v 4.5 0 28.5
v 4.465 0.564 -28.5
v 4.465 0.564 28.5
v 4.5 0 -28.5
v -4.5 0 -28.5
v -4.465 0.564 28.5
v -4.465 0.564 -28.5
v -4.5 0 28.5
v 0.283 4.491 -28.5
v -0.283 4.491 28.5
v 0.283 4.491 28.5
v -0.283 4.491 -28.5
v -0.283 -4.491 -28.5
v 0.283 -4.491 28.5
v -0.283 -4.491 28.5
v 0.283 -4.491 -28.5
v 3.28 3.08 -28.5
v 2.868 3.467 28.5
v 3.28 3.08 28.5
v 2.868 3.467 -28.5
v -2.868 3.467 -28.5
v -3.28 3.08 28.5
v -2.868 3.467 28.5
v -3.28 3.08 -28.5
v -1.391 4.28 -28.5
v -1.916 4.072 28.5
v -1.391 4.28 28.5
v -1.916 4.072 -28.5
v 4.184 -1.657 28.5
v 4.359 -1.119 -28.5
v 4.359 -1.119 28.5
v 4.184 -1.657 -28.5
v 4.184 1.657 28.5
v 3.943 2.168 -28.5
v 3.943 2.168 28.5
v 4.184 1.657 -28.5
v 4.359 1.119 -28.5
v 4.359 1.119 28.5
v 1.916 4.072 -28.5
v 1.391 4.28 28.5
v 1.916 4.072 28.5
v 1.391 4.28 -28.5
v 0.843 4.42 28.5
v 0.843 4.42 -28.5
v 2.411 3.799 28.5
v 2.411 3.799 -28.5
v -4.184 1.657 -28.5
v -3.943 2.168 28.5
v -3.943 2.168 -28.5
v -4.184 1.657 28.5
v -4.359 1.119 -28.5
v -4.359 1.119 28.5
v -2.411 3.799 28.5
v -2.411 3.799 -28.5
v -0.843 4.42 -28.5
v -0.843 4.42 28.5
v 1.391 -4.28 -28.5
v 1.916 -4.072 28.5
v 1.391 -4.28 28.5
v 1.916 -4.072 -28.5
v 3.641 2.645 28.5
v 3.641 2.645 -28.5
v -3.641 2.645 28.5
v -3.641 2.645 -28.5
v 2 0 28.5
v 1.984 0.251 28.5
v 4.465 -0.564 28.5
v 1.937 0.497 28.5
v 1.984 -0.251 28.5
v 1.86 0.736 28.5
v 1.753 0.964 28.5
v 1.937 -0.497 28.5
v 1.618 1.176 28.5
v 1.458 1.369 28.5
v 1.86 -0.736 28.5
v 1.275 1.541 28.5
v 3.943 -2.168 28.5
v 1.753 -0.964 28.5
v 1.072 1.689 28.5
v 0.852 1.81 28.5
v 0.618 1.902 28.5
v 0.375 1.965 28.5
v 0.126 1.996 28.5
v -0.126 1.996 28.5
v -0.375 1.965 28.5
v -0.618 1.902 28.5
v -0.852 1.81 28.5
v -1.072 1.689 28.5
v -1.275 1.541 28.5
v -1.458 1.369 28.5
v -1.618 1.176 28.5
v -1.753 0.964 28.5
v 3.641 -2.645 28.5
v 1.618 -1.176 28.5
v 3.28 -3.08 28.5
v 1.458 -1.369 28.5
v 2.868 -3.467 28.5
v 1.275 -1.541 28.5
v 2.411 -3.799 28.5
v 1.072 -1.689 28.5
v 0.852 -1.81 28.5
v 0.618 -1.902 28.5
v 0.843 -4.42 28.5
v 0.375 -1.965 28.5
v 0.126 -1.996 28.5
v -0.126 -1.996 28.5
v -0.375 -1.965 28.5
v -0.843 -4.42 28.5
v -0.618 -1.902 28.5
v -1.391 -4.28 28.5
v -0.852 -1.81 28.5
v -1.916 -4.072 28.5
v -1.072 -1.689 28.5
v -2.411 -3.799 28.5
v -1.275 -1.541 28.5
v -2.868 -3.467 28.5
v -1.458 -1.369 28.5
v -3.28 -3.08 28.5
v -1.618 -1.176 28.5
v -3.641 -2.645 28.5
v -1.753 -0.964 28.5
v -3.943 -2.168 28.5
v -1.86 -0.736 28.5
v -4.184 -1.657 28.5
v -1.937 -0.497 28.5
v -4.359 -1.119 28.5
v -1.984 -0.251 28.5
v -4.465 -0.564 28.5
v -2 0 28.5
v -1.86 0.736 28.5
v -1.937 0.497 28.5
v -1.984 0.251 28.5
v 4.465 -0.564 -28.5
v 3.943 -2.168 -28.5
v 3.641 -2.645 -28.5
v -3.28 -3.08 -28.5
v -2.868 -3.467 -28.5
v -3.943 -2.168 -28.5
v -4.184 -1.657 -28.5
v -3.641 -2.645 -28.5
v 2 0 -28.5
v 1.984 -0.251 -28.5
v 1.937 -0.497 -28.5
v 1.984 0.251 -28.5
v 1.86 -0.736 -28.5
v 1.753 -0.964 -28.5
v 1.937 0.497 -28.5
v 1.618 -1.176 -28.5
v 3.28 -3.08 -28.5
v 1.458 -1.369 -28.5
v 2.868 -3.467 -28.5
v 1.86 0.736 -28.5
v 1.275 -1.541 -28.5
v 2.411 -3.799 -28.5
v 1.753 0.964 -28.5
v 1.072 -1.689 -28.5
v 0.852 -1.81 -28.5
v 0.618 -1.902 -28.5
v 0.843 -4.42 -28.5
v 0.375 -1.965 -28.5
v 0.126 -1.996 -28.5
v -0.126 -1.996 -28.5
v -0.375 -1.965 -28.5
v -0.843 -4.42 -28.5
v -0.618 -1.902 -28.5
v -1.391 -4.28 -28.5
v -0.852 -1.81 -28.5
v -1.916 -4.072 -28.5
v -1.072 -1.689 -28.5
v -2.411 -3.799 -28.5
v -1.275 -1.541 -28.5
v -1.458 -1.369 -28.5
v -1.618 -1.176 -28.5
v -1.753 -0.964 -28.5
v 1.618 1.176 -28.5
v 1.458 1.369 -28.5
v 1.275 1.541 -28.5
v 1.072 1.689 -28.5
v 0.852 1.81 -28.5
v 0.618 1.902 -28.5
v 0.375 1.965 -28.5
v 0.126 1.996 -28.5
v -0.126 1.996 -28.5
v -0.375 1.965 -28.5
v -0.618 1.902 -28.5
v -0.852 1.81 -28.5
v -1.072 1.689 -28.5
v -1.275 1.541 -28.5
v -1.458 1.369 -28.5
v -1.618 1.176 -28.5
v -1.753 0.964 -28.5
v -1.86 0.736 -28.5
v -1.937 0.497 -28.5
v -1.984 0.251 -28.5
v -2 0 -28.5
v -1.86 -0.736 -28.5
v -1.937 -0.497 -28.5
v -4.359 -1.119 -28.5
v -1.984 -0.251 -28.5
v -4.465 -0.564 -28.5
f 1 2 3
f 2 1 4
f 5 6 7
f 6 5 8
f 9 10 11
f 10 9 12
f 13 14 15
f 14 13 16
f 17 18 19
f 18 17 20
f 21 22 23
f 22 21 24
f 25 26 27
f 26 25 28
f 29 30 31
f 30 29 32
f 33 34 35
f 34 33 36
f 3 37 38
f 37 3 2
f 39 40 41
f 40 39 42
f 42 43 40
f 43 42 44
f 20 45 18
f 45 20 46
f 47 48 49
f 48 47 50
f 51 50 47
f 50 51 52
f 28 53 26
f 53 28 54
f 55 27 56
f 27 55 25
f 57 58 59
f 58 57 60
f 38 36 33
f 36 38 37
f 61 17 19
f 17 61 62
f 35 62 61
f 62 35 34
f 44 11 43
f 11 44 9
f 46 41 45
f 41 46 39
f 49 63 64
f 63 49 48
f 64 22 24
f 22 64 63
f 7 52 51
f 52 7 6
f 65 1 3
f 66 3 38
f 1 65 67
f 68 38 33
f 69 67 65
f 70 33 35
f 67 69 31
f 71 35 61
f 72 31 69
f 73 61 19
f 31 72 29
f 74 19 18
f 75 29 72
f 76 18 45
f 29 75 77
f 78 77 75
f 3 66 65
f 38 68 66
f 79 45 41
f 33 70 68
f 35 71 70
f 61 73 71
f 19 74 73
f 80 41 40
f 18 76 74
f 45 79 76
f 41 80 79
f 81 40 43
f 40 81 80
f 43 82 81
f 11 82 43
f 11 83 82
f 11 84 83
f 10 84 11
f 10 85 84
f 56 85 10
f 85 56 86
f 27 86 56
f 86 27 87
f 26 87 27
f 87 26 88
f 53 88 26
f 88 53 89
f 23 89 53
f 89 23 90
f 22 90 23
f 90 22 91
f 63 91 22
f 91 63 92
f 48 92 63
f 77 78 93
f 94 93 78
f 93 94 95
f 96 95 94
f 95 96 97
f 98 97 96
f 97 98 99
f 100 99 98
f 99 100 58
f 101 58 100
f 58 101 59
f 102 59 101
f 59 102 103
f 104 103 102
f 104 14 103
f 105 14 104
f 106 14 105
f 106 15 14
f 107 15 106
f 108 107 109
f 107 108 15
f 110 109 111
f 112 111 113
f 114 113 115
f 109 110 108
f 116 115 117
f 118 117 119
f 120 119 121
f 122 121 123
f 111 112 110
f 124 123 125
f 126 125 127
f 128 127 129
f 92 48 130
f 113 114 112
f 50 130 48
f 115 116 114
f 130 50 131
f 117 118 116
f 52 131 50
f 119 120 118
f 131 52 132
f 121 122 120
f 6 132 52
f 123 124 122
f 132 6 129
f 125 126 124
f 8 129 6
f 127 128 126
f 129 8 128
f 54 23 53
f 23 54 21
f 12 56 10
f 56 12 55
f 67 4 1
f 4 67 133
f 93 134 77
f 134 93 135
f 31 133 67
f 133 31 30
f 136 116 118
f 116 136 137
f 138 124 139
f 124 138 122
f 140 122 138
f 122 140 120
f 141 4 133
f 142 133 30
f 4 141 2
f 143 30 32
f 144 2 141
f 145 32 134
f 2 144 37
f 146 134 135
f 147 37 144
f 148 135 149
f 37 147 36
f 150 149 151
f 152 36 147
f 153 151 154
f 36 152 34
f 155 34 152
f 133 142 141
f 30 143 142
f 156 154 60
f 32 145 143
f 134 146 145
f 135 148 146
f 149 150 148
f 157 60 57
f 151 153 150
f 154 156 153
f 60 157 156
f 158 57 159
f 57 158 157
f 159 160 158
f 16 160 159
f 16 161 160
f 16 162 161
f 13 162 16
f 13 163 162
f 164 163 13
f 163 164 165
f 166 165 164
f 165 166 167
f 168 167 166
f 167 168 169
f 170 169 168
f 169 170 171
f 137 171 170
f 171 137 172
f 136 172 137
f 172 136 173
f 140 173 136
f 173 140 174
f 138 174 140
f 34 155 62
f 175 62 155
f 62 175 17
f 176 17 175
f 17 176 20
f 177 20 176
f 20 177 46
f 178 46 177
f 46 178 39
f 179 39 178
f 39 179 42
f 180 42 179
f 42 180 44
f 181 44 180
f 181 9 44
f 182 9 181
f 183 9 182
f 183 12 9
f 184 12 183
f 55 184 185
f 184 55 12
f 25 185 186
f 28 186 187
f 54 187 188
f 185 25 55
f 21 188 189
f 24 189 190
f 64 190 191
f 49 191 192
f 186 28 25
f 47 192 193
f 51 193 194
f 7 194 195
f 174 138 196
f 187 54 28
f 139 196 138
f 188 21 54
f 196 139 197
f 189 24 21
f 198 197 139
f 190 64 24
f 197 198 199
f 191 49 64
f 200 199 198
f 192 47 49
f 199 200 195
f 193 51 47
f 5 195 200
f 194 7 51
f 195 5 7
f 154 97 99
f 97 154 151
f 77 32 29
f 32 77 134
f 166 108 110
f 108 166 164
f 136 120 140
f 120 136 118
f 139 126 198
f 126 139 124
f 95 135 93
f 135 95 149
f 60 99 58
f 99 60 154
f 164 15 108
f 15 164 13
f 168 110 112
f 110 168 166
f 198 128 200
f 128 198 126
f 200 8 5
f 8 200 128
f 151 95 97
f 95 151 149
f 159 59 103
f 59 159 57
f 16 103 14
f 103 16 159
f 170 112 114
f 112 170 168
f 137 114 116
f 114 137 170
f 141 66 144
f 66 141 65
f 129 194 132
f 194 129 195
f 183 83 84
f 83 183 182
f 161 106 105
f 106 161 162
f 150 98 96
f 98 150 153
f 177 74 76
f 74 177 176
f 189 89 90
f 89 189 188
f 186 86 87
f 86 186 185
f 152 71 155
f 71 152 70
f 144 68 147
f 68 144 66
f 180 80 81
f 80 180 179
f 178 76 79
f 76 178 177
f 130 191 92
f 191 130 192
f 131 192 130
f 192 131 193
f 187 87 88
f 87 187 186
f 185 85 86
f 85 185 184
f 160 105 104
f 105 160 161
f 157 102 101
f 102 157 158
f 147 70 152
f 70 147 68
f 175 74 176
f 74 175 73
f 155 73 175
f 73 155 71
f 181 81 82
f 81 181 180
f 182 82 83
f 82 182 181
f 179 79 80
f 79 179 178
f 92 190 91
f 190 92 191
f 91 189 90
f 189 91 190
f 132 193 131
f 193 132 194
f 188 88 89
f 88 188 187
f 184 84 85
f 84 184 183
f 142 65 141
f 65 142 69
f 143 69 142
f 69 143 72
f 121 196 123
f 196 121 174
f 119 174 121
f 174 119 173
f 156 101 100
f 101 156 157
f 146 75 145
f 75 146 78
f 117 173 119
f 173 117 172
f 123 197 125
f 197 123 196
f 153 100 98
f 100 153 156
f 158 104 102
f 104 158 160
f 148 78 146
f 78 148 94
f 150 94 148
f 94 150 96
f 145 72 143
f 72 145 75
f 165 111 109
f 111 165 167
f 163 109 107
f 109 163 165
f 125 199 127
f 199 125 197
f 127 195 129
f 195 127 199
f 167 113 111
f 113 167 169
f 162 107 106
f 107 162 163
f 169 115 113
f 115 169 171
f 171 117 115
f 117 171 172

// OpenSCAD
$fn = 50;


difference() {
	union() {
		translate(v = [0, 0, -28.5000000000]) {
			cylinder(h = 57, r = 4.5000000000);
		}
	}
	union() {
		translate(v = [0, 0, -100.0000000000]) {
			cylinder(h = 200, r = 2);
		}
	}
}
